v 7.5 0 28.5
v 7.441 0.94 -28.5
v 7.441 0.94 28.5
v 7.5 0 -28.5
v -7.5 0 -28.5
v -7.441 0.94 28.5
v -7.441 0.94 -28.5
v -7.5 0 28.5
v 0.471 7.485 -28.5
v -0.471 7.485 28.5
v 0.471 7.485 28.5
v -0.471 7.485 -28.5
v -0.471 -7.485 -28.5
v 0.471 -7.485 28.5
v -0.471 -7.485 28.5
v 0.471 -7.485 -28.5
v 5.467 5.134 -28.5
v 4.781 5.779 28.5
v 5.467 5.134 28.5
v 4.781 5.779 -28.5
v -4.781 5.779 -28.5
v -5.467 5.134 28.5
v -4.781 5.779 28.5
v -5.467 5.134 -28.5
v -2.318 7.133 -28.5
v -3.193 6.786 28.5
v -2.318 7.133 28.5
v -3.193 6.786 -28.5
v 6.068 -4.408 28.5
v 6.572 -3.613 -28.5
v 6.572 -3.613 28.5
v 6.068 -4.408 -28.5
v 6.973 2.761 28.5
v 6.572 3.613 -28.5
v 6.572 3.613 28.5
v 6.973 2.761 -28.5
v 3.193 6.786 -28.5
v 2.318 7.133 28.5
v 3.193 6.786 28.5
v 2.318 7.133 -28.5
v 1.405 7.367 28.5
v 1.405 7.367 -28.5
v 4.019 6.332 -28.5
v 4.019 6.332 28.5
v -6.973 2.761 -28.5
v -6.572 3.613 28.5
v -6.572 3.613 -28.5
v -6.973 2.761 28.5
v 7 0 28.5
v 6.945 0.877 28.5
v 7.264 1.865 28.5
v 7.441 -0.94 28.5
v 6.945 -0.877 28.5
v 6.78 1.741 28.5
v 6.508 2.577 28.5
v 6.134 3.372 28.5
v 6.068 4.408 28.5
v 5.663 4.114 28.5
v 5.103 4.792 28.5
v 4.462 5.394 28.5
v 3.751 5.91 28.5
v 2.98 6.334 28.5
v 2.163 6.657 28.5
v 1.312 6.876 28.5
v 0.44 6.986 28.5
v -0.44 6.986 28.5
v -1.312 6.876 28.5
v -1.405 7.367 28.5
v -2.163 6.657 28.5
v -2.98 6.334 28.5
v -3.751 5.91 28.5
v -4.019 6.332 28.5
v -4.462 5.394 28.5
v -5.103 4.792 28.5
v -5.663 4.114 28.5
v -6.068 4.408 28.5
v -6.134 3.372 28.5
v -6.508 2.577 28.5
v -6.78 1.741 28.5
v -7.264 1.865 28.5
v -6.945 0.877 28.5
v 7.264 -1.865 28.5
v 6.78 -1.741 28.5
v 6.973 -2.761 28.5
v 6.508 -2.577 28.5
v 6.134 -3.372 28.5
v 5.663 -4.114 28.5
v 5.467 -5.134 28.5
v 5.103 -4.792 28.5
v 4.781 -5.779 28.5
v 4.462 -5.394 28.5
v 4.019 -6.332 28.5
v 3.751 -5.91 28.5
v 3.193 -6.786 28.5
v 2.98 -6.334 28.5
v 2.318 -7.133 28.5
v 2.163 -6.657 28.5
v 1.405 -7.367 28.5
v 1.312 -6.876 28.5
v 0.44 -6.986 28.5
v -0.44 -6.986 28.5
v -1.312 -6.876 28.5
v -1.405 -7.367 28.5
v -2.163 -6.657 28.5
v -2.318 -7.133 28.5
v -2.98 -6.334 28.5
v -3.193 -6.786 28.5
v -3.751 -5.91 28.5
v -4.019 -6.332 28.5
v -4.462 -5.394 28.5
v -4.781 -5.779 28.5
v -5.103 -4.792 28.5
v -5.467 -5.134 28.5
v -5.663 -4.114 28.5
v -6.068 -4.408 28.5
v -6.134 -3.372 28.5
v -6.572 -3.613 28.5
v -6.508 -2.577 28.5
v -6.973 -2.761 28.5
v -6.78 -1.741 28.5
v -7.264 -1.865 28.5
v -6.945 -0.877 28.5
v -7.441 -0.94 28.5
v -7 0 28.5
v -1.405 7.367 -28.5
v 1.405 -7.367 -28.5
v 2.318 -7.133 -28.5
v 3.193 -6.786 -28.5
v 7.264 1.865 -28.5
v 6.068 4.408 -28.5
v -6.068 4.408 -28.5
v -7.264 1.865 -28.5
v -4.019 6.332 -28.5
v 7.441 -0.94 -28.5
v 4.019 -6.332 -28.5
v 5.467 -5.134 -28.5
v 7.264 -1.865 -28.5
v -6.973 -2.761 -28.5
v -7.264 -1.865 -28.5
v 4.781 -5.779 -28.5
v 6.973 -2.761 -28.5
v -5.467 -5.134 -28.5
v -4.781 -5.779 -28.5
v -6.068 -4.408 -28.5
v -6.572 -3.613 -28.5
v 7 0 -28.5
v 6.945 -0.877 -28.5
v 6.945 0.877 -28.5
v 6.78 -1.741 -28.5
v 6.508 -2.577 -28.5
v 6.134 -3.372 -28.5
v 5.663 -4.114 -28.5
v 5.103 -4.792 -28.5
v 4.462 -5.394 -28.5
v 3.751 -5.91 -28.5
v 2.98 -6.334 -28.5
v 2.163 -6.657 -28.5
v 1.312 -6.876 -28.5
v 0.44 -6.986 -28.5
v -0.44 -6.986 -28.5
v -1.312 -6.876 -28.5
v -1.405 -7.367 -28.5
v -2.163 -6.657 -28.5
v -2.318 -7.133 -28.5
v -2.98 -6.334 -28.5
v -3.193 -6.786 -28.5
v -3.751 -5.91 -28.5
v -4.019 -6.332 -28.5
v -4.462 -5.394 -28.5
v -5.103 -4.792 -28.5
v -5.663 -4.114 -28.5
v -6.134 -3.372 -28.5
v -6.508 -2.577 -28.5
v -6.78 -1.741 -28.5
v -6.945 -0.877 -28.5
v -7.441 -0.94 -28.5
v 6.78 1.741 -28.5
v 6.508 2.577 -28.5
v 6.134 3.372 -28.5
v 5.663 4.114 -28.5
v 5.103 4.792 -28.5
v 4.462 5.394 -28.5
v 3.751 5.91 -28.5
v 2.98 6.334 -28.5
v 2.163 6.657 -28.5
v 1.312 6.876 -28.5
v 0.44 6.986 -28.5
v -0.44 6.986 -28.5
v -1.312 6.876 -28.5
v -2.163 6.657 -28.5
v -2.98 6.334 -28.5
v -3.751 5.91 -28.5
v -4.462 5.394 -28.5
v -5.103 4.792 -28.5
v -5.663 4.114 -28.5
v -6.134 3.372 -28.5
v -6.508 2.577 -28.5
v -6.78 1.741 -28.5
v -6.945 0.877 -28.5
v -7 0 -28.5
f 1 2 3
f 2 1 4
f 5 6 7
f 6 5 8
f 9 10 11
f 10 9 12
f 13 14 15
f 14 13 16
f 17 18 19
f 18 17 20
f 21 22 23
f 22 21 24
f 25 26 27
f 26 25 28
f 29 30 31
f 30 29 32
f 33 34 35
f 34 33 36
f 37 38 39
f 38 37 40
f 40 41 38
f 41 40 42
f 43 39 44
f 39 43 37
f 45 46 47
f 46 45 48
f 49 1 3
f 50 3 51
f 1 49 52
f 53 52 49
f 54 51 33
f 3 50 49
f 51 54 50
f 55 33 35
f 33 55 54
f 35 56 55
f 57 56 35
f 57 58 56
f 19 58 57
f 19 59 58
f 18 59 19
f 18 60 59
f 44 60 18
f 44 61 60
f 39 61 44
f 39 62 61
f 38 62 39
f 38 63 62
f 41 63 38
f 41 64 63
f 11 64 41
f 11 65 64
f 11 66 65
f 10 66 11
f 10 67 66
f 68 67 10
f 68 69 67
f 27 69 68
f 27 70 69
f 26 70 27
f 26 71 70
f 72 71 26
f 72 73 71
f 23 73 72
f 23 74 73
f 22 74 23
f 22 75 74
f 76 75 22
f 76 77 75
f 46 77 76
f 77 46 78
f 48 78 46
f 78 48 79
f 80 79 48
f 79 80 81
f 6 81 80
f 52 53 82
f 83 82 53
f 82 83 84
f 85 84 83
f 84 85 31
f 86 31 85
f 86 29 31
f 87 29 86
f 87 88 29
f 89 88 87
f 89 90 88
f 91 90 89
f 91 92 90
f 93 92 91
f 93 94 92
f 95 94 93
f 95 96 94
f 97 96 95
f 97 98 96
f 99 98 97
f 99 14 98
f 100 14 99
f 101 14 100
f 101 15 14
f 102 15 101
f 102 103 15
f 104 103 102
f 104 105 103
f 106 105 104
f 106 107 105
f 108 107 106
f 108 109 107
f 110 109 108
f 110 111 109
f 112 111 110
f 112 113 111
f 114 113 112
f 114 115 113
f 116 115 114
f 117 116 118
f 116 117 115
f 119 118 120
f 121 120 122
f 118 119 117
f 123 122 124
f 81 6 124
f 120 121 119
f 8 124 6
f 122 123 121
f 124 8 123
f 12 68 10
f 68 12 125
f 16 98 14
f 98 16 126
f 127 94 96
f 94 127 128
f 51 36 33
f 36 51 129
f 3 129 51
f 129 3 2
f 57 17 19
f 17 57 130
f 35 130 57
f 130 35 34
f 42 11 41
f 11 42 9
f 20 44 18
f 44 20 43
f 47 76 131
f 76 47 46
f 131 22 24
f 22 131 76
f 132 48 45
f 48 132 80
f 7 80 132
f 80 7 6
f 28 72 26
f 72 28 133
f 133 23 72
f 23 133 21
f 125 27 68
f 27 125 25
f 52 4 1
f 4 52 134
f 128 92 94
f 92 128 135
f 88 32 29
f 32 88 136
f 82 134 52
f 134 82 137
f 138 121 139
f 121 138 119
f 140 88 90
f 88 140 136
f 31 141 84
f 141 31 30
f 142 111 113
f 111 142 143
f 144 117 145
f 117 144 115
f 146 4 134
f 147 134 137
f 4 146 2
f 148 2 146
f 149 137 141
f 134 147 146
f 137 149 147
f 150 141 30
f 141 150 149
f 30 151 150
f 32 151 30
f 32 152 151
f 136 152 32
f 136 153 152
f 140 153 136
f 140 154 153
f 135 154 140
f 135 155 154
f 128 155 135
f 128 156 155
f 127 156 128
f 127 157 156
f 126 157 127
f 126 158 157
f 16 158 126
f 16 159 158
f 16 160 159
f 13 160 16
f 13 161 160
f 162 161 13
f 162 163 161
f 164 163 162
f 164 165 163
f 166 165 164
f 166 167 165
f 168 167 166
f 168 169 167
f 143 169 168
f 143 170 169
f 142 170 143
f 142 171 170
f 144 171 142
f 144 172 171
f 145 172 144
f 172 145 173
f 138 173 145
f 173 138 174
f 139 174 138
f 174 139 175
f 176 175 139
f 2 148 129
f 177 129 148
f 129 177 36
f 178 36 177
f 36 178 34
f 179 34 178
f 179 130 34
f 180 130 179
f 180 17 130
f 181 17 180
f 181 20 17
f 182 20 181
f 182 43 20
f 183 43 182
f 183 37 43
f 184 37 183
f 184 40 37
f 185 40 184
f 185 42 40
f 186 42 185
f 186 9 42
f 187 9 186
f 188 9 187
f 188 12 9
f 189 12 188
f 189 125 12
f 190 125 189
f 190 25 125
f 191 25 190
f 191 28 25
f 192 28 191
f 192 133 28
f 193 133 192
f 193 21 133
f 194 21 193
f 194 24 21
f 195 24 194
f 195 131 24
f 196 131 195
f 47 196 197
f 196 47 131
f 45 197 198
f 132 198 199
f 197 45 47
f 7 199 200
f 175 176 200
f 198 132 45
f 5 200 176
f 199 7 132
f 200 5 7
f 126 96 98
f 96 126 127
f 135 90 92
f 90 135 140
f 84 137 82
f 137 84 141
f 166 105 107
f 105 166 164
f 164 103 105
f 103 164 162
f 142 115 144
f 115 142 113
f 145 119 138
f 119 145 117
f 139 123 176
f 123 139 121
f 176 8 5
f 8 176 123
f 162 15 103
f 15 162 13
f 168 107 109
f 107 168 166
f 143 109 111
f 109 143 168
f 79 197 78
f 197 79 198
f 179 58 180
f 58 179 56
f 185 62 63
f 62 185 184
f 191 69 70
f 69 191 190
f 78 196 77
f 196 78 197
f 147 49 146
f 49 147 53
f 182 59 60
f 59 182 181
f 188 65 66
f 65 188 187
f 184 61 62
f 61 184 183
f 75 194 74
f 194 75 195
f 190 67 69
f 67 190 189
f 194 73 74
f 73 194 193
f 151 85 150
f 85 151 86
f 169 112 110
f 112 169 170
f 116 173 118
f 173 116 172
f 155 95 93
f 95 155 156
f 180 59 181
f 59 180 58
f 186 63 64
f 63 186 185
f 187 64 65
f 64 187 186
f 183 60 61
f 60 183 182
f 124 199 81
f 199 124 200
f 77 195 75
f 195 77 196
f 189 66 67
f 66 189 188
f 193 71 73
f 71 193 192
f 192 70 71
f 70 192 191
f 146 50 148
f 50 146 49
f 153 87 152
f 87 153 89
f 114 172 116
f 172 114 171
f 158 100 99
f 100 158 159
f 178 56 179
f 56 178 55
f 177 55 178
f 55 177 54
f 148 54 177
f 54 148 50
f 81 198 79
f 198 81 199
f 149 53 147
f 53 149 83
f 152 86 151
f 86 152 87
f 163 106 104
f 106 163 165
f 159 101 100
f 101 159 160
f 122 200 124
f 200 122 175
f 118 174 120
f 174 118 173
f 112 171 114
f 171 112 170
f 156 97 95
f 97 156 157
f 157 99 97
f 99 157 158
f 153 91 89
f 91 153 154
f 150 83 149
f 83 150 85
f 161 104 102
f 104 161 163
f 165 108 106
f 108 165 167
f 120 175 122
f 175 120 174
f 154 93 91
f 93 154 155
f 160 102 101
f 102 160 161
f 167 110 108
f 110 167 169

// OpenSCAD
$fn = 50;


difference() {
	union() {
		translate(v = [0, 0, -28.5000000000]) {
			cylinder(h = 57, r = 7.5000000000);
		}
	}
	union() {
		translate(v = [0, 0, -100.0000000000]) {
			cylinder(h = 200, r = 7);
		}
	}
}
